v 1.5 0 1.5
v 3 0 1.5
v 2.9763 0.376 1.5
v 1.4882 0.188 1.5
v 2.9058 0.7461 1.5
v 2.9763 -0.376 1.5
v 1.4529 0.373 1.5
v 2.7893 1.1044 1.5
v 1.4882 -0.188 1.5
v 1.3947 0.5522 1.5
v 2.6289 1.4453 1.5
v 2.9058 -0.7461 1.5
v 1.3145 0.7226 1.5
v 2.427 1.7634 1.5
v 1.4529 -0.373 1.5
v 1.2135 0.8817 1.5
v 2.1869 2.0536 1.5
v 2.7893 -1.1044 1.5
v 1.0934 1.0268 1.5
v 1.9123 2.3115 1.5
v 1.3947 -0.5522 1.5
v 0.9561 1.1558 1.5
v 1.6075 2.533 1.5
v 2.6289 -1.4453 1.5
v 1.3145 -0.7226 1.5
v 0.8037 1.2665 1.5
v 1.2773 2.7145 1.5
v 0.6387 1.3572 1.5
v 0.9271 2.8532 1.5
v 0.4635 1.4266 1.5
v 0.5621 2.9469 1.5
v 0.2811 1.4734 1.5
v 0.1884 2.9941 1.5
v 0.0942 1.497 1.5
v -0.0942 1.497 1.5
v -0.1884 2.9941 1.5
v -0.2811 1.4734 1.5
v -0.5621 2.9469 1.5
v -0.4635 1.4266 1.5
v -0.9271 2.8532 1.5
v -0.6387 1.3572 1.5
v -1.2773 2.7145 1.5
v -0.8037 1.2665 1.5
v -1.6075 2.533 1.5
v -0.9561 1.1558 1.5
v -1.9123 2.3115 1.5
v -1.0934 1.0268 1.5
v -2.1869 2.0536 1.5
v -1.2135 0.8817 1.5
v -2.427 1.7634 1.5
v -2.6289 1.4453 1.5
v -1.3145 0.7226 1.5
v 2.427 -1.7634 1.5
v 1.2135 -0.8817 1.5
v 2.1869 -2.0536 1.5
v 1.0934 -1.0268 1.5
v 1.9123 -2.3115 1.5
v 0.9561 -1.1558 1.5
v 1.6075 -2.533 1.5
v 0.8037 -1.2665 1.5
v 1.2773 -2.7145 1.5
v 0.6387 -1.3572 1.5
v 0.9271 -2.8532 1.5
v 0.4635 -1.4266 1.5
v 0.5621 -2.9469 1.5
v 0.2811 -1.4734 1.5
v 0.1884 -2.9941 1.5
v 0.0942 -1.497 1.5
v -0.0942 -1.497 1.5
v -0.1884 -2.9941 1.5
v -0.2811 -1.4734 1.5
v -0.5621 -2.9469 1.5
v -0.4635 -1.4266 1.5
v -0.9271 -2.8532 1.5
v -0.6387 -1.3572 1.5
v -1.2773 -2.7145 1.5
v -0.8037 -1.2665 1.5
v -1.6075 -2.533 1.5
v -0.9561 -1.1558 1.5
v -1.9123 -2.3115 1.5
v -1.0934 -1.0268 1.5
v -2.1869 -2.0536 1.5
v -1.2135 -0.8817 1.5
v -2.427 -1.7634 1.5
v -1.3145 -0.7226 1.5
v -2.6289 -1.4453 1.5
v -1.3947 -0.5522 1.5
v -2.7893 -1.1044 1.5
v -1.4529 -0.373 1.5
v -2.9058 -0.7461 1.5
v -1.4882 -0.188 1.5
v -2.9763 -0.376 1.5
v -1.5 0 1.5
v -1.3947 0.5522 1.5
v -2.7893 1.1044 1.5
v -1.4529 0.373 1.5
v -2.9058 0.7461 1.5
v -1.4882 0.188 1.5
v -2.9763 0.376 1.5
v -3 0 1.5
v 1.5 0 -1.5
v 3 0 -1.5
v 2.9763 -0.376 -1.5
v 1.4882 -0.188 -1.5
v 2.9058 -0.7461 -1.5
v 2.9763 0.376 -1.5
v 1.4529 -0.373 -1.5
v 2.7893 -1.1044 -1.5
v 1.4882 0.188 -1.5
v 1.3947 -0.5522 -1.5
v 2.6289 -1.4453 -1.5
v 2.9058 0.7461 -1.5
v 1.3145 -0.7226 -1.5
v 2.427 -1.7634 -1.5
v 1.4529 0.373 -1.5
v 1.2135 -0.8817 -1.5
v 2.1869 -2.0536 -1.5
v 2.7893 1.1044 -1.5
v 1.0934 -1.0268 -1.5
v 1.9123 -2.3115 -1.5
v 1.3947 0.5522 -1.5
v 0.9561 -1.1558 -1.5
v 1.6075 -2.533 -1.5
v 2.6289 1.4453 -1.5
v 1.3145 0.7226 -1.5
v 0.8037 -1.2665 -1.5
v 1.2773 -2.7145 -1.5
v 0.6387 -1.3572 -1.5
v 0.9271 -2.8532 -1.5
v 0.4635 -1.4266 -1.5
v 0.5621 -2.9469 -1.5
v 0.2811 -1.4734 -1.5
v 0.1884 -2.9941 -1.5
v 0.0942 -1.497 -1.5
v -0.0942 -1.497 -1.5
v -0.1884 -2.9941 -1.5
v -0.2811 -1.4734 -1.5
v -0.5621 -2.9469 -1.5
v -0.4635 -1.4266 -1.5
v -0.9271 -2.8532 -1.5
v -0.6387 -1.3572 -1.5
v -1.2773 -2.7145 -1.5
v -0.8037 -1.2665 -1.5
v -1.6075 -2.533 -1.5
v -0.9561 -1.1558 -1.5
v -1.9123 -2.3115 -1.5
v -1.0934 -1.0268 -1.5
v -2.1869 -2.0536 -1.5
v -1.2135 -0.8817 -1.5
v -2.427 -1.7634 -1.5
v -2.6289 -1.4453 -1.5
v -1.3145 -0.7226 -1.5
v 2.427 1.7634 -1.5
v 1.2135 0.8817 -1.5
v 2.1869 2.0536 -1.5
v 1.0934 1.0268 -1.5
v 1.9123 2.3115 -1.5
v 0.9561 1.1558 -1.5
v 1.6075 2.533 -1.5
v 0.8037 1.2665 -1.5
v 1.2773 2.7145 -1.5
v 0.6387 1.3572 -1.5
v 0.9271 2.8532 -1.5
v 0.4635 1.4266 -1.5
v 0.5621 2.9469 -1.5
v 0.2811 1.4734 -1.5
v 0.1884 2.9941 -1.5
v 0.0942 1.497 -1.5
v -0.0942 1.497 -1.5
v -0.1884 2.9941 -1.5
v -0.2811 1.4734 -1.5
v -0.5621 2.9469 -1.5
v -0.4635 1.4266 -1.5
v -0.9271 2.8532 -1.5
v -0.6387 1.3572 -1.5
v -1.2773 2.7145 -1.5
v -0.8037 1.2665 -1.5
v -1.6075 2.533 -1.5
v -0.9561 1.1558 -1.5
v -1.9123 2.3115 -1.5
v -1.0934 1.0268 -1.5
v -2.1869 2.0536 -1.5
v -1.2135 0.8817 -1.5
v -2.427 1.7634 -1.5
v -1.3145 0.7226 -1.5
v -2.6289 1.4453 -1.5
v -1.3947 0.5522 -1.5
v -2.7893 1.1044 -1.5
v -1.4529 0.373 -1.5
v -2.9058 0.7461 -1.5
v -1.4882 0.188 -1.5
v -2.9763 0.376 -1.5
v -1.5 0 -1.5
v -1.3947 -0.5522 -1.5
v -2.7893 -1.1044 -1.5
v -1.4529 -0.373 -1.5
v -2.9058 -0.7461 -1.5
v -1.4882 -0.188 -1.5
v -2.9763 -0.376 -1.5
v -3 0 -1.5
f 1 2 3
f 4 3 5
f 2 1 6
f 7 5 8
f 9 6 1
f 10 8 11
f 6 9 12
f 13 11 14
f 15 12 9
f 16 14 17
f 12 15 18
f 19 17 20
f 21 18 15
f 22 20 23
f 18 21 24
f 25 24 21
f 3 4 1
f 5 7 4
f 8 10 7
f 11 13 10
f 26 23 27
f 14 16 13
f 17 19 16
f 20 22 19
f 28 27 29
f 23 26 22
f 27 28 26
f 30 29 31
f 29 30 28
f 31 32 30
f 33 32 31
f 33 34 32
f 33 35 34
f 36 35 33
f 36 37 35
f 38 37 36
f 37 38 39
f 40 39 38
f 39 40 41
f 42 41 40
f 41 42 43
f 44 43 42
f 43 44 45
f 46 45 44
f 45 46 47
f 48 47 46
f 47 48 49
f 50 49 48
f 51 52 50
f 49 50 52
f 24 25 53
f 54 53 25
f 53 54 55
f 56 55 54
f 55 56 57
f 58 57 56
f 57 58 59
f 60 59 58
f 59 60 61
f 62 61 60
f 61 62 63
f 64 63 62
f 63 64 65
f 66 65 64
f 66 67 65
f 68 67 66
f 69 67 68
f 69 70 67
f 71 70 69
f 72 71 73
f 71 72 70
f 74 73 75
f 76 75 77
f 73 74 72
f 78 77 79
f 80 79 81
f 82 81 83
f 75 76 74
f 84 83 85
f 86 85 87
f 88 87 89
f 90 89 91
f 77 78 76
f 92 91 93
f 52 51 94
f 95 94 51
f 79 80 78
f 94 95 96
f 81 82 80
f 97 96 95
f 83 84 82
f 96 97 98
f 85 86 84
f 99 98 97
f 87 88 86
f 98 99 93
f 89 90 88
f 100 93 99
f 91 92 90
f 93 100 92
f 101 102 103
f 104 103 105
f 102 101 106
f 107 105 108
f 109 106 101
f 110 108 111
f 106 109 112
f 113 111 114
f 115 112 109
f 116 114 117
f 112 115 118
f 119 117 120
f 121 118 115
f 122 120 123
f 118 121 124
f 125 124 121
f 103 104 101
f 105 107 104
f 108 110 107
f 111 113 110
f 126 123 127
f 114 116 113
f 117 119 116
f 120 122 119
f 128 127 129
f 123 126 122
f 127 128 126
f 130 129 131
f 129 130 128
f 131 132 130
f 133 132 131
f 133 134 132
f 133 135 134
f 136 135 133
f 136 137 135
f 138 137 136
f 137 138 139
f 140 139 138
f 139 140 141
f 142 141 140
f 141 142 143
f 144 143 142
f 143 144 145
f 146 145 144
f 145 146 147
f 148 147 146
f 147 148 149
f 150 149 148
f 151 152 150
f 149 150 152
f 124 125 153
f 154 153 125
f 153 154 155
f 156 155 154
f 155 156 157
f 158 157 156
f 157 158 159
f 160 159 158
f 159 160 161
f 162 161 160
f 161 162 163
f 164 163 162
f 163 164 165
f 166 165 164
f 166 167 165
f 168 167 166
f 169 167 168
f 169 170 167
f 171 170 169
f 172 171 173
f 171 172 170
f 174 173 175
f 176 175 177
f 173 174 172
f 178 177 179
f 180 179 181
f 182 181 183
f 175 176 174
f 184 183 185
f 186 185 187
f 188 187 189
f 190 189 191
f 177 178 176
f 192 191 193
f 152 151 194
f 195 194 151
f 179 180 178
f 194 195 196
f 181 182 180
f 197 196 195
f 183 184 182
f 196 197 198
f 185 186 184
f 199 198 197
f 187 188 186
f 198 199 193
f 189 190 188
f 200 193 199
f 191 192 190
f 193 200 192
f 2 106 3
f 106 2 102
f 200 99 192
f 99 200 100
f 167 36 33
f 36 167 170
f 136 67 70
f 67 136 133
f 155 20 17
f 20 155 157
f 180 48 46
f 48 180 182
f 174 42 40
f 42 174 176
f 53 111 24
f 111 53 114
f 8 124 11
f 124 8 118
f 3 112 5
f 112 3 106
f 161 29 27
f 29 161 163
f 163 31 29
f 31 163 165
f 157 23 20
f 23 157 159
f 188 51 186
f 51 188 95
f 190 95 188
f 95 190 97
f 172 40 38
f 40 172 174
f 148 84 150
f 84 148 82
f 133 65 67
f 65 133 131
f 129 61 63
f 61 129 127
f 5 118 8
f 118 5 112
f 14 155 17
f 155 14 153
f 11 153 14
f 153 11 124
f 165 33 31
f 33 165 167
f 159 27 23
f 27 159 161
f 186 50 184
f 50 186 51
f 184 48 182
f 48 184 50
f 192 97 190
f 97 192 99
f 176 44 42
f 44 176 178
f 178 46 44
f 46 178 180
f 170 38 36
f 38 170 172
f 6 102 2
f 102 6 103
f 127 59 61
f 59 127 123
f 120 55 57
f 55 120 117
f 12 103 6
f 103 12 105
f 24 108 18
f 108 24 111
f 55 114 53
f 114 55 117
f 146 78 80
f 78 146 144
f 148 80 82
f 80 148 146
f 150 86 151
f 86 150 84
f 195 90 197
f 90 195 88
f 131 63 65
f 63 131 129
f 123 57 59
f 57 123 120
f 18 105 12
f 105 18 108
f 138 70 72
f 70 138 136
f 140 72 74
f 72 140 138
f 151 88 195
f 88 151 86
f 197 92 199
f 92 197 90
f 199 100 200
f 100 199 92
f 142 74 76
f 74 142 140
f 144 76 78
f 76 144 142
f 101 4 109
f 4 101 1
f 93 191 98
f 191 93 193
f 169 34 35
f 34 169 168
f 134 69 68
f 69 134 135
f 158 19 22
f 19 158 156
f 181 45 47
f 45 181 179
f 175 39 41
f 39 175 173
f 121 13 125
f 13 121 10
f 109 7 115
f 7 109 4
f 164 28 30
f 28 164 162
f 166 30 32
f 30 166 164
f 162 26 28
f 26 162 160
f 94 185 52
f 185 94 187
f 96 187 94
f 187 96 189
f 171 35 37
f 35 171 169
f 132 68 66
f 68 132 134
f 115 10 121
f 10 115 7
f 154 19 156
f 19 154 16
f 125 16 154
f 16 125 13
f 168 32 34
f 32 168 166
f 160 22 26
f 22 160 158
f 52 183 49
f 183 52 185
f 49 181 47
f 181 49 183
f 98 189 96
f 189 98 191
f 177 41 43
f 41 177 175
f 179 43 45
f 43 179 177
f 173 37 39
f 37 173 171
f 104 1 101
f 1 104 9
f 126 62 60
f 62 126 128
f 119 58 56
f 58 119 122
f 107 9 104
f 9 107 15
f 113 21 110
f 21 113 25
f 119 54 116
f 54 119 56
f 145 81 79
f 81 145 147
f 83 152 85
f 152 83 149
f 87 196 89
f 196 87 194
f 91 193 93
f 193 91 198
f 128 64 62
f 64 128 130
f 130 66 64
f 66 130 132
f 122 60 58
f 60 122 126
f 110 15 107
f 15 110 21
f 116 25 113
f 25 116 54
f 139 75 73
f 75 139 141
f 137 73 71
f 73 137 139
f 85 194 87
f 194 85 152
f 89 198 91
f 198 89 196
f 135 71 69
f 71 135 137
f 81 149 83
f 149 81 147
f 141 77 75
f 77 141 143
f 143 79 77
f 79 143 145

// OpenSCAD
$fn = 50;


difference() {
	union() {
		translate(v = [0, 0, -1.5000000000]) {
			rotate(a = [0, 0, 0]) {
				cylinder(h = 3, r = 1.0000000000);
			}
		}
		translate(v = [0, 0, -1.5000000000]) {
			rotate(a = [0, 0, 0]) {
				cylinder(h = 3, r = 3.0000000000);
			}
		}
	}
	union() {
		translate(v = [0, 0, -125.0000000000]) {
			rotate(a = [0, 0, 0]) {
				cylinder(h = 250, r = 1.5000000000);
			}
		}
	}
}
